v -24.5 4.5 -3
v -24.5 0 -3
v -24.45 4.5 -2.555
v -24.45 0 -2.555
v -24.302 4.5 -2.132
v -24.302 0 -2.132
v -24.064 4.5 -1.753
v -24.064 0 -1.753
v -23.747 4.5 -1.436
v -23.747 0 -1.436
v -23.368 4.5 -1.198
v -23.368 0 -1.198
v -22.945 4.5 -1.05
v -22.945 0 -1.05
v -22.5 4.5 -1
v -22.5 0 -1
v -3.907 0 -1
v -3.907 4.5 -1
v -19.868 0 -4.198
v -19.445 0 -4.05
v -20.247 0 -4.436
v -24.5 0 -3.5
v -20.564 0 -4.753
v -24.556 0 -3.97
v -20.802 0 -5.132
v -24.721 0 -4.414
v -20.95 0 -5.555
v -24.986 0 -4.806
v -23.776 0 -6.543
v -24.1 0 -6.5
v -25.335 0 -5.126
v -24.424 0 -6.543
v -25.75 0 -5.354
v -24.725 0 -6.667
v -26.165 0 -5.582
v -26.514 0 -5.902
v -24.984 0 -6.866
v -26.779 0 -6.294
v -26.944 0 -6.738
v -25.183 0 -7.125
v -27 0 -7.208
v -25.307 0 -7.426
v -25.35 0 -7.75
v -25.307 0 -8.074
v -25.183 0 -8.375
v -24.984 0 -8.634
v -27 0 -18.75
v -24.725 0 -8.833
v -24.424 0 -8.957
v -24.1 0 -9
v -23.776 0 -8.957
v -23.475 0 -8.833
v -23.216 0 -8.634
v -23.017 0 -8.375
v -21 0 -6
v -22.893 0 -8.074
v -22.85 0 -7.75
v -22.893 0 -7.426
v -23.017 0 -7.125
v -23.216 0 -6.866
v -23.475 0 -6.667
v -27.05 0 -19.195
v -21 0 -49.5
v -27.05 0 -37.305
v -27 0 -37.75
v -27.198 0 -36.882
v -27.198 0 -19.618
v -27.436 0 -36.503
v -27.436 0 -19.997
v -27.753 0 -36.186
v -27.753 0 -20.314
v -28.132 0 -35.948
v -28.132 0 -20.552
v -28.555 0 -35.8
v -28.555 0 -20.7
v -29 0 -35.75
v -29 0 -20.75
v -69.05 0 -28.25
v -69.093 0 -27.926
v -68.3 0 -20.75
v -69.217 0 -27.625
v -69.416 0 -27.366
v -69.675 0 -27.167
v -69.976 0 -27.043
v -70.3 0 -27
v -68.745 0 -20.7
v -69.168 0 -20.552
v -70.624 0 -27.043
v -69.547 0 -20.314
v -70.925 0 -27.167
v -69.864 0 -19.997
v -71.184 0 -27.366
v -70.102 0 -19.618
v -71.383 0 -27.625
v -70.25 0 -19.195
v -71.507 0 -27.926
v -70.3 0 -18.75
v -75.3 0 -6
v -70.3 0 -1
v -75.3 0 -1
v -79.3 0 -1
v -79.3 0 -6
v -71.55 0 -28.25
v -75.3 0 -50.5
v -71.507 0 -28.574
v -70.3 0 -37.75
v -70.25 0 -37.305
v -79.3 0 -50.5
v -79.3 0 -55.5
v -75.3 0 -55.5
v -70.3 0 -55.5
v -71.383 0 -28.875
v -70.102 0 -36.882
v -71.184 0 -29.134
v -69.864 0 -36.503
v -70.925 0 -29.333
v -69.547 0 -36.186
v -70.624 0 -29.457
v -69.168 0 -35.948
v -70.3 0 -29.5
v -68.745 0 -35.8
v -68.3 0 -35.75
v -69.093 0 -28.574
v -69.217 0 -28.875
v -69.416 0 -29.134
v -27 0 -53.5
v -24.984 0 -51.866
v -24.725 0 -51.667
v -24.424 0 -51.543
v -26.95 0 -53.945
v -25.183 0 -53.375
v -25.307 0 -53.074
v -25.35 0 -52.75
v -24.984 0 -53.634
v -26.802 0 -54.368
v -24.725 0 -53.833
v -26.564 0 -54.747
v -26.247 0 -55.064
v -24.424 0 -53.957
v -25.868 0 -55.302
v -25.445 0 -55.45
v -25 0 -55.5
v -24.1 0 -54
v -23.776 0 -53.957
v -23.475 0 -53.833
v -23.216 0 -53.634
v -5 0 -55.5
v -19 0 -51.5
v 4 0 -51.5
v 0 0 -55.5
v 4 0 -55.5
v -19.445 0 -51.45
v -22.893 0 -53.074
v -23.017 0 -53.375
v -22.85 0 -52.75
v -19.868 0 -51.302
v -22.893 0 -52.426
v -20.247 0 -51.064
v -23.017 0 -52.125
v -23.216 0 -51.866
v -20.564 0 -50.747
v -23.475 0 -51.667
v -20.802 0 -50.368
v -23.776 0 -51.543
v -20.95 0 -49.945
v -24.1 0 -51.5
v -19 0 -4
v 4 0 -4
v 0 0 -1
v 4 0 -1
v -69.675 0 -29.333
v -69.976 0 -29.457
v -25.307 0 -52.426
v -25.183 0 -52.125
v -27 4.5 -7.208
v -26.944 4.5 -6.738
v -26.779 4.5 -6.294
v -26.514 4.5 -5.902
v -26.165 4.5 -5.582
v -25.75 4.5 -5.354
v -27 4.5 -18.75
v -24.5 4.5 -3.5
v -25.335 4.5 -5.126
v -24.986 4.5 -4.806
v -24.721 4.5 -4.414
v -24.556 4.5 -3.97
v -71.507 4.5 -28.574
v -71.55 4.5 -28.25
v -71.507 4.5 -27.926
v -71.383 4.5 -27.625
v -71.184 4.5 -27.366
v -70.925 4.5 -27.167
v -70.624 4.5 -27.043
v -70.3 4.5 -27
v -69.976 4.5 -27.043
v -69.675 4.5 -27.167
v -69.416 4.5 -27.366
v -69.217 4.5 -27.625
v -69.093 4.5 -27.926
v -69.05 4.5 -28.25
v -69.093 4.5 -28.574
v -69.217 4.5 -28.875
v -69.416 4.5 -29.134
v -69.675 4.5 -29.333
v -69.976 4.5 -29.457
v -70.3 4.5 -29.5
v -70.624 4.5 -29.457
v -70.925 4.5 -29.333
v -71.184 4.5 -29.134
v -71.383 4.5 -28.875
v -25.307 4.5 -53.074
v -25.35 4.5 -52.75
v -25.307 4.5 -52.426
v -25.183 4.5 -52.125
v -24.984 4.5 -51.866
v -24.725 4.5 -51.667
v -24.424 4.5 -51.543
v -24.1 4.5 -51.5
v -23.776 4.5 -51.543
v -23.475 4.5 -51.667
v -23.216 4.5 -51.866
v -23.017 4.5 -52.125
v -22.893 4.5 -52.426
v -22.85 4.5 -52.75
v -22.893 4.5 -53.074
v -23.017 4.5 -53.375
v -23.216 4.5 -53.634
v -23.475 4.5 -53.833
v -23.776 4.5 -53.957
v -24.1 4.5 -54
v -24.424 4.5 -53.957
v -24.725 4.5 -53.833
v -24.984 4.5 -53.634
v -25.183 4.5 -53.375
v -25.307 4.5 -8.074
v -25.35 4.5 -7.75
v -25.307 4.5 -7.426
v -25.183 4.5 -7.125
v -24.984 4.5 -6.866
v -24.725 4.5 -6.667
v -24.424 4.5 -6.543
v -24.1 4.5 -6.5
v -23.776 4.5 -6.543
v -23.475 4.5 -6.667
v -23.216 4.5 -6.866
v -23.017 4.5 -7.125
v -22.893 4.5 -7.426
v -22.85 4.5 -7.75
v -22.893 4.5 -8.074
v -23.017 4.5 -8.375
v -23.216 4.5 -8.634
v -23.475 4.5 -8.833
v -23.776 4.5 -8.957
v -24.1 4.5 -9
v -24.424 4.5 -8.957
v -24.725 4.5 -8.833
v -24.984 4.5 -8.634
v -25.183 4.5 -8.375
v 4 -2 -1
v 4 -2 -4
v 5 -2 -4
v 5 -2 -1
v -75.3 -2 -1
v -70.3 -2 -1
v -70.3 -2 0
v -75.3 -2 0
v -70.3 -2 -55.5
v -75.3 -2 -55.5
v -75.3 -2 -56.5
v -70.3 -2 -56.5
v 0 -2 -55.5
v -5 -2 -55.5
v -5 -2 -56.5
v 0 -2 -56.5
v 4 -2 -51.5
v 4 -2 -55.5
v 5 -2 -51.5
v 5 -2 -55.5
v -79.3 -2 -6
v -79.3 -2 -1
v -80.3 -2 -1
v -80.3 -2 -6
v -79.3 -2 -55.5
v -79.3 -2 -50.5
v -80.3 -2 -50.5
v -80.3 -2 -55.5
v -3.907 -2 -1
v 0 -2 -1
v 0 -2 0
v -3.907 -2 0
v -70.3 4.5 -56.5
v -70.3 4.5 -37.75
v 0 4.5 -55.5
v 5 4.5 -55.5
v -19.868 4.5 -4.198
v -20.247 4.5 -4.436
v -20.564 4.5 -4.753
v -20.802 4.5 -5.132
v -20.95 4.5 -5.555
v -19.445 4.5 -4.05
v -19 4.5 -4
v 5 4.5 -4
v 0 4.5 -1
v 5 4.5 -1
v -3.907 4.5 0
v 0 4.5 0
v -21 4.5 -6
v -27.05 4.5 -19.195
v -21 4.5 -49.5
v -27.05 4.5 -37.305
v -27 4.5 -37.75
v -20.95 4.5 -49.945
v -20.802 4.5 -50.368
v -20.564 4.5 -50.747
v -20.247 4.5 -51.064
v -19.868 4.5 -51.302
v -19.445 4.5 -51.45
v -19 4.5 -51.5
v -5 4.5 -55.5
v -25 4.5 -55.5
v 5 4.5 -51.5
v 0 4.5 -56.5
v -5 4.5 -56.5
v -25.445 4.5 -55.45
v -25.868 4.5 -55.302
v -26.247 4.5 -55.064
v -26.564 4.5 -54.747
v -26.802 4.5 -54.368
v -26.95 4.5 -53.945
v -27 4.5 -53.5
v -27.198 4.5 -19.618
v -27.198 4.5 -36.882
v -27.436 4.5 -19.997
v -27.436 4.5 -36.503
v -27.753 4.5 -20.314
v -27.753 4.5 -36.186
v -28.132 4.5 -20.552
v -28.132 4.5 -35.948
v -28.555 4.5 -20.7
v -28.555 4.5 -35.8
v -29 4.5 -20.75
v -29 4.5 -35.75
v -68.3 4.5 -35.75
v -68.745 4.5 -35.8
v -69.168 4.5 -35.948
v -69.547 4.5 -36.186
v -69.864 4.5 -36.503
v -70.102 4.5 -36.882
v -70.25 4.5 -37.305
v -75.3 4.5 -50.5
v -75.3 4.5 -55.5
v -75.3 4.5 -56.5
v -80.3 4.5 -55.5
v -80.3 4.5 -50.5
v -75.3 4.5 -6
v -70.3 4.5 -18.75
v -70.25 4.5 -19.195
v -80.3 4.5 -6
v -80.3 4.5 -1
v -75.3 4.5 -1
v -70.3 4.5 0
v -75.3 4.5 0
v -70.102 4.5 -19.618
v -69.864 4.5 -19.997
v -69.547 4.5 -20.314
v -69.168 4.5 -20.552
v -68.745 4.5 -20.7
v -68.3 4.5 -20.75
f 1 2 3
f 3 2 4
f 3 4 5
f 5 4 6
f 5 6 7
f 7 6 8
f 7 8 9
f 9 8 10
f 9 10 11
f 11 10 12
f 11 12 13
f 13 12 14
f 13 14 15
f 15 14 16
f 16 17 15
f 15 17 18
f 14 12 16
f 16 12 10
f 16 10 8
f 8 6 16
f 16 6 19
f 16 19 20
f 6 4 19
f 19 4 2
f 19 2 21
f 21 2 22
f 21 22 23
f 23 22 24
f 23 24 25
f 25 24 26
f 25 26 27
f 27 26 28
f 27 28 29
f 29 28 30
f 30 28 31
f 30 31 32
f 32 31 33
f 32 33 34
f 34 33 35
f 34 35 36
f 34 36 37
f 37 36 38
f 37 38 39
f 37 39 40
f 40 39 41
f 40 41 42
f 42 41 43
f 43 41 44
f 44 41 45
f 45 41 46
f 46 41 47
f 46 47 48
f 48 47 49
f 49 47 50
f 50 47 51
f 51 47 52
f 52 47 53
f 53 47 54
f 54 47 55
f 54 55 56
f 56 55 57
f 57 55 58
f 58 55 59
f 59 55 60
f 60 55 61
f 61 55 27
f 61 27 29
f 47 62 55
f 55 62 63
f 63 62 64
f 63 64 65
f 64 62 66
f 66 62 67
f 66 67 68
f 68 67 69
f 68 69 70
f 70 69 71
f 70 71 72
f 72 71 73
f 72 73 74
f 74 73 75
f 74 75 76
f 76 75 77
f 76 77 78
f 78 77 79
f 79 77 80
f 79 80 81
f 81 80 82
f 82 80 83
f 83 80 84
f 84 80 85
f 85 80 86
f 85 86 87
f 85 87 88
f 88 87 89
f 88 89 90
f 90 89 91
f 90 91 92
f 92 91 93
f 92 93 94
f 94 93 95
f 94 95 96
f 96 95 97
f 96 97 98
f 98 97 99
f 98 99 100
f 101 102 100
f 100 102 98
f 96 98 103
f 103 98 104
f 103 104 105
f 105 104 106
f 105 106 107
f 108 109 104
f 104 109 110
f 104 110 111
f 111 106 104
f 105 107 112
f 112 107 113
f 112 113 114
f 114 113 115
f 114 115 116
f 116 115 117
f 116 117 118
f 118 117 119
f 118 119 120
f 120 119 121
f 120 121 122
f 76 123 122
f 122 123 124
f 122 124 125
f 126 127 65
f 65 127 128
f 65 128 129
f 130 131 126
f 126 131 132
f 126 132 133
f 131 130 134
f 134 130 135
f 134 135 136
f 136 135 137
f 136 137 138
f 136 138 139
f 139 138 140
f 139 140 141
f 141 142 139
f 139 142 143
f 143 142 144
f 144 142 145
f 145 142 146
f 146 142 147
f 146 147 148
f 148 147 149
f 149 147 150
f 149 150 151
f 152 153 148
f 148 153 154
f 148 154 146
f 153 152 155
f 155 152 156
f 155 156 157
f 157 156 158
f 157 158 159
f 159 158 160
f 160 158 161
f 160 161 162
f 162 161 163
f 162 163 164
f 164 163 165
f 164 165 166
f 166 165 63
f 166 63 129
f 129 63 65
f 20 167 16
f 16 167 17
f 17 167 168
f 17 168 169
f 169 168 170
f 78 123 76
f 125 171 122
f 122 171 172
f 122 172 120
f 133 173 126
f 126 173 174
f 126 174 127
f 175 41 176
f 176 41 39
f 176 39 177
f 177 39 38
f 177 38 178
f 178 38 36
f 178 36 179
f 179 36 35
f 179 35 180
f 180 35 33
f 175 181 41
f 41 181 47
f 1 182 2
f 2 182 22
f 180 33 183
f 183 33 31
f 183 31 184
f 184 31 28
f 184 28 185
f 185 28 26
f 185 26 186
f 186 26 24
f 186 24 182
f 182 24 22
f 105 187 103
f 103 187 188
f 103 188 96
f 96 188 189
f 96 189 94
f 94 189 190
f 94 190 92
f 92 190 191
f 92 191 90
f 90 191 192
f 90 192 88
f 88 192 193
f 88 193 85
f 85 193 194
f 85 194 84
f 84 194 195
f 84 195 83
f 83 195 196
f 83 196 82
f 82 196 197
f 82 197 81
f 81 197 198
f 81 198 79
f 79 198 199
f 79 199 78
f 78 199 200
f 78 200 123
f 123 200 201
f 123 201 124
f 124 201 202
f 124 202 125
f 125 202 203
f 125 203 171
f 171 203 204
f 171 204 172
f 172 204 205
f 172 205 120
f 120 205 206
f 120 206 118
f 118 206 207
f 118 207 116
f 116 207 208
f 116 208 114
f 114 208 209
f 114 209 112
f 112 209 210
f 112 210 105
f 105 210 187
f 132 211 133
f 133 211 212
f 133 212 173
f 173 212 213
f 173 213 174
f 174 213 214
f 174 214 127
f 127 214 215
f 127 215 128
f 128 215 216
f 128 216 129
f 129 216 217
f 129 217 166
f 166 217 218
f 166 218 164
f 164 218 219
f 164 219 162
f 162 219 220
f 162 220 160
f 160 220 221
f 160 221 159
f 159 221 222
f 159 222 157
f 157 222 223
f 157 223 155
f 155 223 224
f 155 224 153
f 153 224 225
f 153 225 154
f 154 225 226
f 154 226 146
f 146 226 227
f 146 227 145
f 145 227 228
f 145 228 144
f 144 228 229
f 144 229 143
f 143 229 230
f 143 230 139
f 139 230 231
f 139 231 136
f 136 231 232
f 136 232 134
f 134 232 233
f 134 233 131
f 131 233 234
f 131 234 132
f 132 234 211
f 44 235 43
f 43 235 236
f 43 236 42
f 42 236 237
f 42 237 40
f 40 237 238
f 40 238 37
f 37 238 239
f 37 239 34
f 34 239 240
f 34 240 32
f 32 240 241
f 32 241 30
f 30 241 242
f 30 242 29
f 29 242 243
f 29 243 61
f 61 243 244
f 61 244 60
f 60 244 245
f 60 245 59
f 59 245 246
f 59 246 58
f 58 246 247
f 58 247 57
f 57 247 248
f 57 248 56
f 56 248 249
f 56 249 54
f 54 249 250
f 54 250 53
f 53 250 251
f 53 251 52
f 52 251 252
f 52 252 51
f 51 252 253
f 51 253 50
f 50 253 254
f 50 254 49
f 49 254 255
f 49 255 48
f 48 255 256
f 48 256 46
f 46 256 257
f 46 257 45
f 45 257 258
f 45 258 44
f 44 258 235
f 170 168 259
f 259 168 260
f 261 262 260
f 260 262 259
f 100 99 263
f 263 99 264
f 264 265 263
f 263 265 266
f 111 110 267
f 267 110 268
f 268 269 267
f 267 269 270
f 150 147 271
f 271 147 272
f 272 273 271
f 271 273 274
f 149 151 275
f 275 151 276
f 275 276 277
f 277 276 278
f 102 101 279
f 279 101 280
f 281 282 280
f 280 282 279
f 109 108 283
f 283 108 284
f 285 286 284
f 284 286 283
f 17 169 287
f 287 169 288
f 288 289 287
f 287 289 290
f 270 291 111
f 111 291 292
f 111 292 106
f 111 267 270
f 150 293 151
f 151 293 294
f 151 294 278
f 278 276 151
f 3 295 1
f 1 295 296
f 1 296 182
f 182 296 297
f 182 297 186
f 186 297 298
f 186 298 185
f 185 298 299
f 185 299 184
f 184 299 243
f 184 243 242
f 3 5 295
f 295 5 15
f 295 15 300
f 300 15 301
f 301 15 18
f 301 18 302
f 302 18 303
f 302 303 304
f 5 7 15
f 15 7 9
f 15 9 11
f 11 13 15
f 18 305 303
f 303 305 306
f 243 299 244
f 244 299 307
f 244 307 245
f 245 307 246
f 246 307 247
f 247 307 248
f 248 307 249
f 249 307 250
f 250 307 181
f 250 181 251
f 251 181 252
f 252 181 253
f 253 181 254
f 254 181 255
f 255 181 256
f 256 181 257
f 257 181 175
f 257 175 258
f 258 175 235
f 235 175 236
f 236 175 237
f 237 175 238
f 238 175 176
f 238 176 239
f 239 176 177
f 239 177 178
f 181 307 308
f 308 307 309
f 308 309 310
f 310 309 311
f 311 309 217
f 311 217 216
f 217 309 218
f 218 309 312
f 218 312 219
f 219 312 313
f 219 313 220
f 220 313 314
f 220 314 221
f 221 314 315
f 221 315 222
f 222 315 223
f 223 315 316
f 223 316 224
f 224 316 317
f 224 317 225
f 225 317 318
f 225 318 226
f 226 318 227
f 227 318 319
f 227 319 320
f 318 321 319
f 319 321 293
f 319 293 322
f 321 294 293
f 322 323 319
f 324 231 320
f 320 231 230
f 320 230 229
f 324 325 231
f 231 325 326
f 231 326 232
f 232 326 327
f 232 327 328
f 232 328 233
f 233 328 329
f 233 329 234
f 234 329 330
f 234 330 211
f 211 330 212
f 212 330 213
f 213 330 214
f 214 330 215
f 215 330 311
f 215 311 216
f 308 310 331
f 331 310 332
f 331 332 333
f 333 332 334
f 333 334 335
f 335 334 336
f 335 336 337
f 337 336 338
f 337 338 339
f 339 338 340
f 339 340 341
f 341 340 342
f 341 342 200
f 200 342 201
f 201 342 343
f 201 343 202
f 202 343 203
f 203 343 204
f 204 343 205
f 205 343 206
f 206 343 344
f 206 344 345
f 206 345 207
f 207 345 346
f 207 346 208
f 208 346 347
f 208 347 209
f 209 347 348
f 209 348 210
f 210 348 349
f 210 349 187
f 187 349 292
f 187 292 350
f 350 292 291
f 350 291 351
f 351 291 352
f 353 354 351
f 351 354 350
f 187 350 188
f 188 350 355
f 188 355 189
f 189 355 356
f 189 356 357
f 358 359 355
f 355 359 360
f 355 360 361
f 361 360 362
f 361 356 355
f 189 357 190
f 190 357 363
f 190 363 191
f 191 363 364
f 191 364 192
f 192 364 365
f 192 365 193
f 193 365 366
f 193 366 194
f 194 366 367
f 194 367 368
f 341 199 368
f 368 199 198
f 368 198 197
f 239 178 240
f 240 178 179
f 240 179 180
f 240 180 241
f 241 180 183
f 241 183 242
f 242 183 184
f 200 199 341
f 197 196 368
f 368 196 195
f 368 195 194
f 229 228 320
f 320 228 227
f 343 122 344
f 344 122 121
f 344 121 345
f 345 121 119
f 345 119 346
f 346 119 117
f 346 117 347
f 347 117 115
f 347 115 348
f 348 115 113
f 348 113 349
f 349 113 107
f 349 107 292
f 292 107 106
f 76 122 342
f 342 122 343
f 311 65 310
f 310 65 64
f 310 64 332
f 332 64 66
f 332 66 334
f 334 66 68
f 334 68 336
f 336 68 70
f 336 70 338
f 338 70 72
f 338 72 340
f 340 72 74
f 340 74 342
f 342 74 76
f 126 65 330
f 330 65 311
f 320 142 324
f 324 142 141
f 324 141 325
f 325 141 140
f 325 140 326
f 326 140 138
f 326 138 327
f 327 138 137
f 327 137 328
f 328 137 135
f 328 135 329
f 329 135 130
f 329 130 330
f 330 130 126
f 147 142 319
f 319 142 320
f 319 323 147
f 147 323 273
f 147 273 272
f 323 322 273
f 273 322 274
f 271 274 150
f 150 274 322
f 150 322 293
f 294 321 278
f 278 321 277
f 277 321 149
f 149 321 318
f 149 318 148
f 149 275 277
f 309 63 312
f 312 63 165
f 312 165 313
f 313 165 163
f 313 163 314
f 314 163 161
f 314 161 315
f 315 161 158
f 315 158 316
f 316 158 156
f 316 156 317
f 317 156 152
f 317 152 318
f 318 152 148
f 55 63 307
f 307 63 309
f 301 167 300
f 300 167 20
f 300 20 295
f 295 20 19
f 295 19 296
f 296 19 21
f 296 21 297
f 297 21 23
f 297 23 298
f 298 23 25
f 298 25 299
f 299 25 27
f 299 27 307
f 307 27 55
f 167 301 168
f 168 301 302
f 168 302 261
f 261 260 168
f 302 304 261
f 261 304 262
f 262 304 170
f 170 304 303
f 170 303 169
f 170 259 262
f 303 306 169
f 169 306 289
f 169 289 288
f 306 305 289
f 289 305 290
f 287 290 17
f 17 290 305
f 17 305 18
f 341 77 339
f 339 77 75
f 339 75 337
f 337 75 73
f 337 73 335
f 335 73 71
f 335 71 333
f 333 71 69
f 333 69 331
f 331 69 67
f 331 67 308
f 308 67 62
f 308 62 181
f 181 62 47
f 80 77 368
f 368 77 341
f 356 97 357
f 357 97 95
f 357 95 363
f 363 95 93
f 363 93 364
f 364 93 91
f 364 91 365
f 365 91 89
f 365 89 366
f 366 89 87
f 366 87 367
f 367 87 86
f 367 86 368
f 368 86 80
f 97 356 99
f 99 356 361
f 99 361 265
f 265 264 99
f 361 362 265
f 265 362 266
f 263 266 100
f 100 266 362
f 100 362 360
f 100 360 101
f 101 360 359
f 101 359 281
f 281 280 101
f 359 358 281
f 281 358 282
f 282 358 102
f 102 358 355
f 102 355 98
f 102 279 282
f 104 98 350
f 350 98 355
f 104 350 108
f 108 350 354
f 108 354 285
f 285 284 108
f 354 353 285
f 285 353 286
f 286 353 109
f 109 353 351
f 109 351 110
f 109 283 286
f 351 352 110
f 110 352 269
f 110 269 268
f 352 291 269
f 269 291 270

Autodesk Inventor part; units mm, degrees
ref_plane "YZ Plane" through (0, 0, 0) normal (1, 0, 0) x (0, 1, 0)
ref_plane "XZ Plane" through (0, 0, 0) normal (0, 1, 0) x (-1, 0, 0)
ref_plane "XY Plane" through (0, 0, 0) normal (0, 0, 1) x (1, 0, 0)
sketch "Sketch9" plane through (0, 0, 0) normal (0, 1, 0) x (-1, 0, 0)
  line L0 (80.3, -1) -> (75.3, -1)
  line L1 (75.3, -1) -> (75.3, 0)
  line L2 (75.3, 0) -> (70.3, 0)
  line L3 (70.3, 0) -> (70.3, -18.75)
  line L4 (68.3, -20.75) -> (29, -20.75)
  line L5 (0, 0) -> (0, -1)
  line L6 (0, -1) -> (-5, -1)
  line L7 (-5, -1) -> (-5, -4)
  line L8 (-5, -4) -> (19, -4)
  line L9 (21, -6) -> (21, -49.5)
  line L10 (19, -51.5) -> (-5, -51.5)
  line L11 (-5, -51.5) -> (-5, -55.5)
  line L12 (-5, -55.5) -> (0, -55.5)
  line L13 (29, -35.75) -> (68.3, -35.75)
  line L14 (70.3, -37.75) -> (70.3, -56.5)
  line L15 (70.3, -56.5) -> (75.3, -56.5)
  line L16 (75.3, -56.5) -> (75.3, -55.5)
  line L17 (75.3, -55.5) -> (80.3, -55.5)
  line L18 (80.3, -55.5) -> (80.3, -50.5)
  line L19 (80.3, -50.5) -> (75.3, -50.5)
  line L20 (75.3, -50.5) -> (75.3, -6)
  line L21 (75.3, -6) -> (80.3, -6)
  line L22 (80.3, -6) -> (80.3, -1)
  line L23 (27, -37.75) -> (27, -53.5)
  line L24 (25, -55.5) -> (5, -55.5)
  line L25 (0, -55.5) -> (0, -56.5)
  line L26 (0, -56.5) -> (5, -56.5)
  line L27 (5, -56.5) -> (5, -55.5)
  line L28 (3.9072, 0) -> (3.9072, -1)
  line L29 (3.9072, -1) -> (25, -1)
  line L30 (27, -3) -> (27, -18.75)
  line L31 (3.9072, 0) -> (0, 0)
  arc A0 (19, -51.5) -> (21, -49.5) centre (19, -49.5) ccw
  arc A1 (21, -6) -> (19, -4) centre (19, -6) ccw
  arc A2 (27, -3) -> (25, -1) centre (25, -3) ccw
  arc A3 (25, -55.5) -> (27, -53.5) centre (25, -53.5) ccw
  arc A4 (70.3, -37.75) -> (68.3, -35.75) centre (68.3, -37.75) ccw
  arc A5 (68.3, -20.75) -> (70.3, -18.75) centre (68.3, -18.75) ccw
  arc A6 (29, -35.75) -> (27, -37.75) centre (29, -37.75) ccw
  arc A7 (27, -18.75) -> (29, -20.75) centre (29, -18.75) ccw
  point P0 (70.3, -20.75)
  point P1 (27, -20.75)
  point P2 (21, -4)
  point P3 (21, -51.5)
  point P4 (27, -35.75)
  point P5 (70.3, -35.75)
  point P6 (27, -55.5)
  point P7 (27, -1)
  dimension "d42" = 85.3
  dimension "d45" = 15
  dimension "d46" = 5
  dimension "d47" = 5
  dimension "d48" = 5
  dimension "d50" = 1
  dimension "d60" = 4
  dimension "d62" = 26
  dimension "d64" = 1
  dimension "d65" = 5
  dimension "d66" = 5
  dimension "d67" = 6
  dimension "d68" = 3
  dimension "d69" = 56.5
  dimension "d70" = 5
  dimension "d90" = 2
  dimension "d91" = 2
  dimension "d92" = 2
extrude "Extrusion9" add sketch "Sketch9" along normal blind 4.5
sketch "Sketch10" plane through (0, 4.5, 0) normal (0, 1, 0) x (1, 0, 0)
  line L0 (-19, 51.5) -> (5, 51.5) projected
  line L1 (0, 0) -> (0, 1) projected
  line L2 (0, 55.5) -> (0, 56.5) projected
  line L3 (5, 55.5) -> (0, 55.5) projected
  line L4 (5, 51.5) -> (5, 55.5) projected
  line L5 (-70.3, 37.75) -> (-70.3, 56.5) projected
  line L6 (-70.3, 56.5) -> (-75.3, 56.5) projected
  line L7 (-75.3, 56.5) -> (-75.3, 55.5) projected
  line L8 (-75.3, 55.5) -> (-80.3, 55.5) projected
  line L9 (-80.3, 55.5) -> (-80.3, 50.5) projected
  line L10 (-80.3, 50.5) -> (-75.3, 50.5) projected
  line L11 (-75.3, 50.5) -> (-75.3, 6) projected
  line L12 (-75.3, 6) -> (-80.3, 6) projected
  line L13 (-80.3, 6) -> (-80.3, 1) projected
  line L14 (-80.3, 1) -> (-75.3, 1) projected
  line L15 (-75.3, 1) -> (-75.3, 0) projected
  line L16 (-75.3, 0) -> (-70.3, 0) projected
  line L17 (-70.3, 0) -> (-70.3, 18.75) projected
  line L18 (-68.3, 20.75) -> (-29, 20.75) projected
  line L19 (-27, 18.75) -> (-27, 3) projected
  line L20 (-25, 1) -> (-3.9072, 1) projected
  line L21 (-3.9072, 1) -> (-3.9072, 0) projected
  line L22 (-3.9072, 0) -> (0, 0) projected
  line L23 (0, 0) -> (0, 1) projected
  line L24 (0, 1) -> (5, 1) projected
  line L25 (5, 1) -> (5, 4) projected
  line L26 (5, 4) -> (-19, 4) projected
  line L27 (-21, 6) -> (-21, 49.5) projected
  line L28 (-19, 51.5) -> (5, 51.5) projected
  line L29 (5, 51.5) -> (5, 55.5) projected
  line L30 (5, 55.5) -> (0, 55.5) projected
  line L31 (0, 55.5) -> (0, 56.5) projected
  line L32 (0, 56.5) -> (-5, 56.5) projected
  line L33 (-5, 56.5) -> (-5, 55.5) projected
  line L34 (-5, 55.5) -> (-25, 55.5) projected
  line L35 (-27, 53.5) -> (-27, 37.75) projected
  line L36 (-29, 35.75) -> (-68.3, 35.75) projected
  line L37 (-27, 1) -> (-3.9072, 1) projected
  line L38 (0, 1) -> (-3.9072, 1)
  line L39 (0, 1) -> (5, 1) projected
  line L40 (4, 1) -> (4, 4)
  line L41 (5, 4) -> (-21, 4) projected
  line L42 (4, 51.5) -> (4, 55.5)
  line L43 (-5, 55.5) -> (-27, 55.5) projected
  line L44 (0, 55.5) -> (-5, 55.5)
  line L45 (-75.3, 55.5) -> (-80.3, 55.5) projected
  line L46 (-75.3, 55.5) -> (-70.3, 55.5)
  line L47 (-80.3, 1) -> (-75.3, 1) projected
  line L48 (-79.3, 1) -> (-79.3, 6)
  line L49 (-75.3, 1) -> (-70.3, 1)
  line L50 (-70.3, 0) -> (-70.3, 20.75) projected
  line L51 (-80.3, 50.5) -> (-75.3, 50.5) projected
  line L52 (-79.3, 50.5) -> (-79.3, 55.5)
  arc A0 (-68.3, 20.75) -> (-70.3, 18.75) centre (-68.3, 18.75) ccw projected
  arc A1 (-27, 18.75) -> (-29, 20.75) centre (-29, 18.75) ccw projected
  arc A2 (-27, 3) -> (-25, 1) centre (-25, 3) ccw projected
  arc A3 (-21, 6) -> (-19, 4) centre (-19, 6) ccw projected
  arc A4 (-19, 51.5) -> (-21, 49.5) centre (-19, 49.5) ccw projected
  arc A5 (-25, 55.5) -> (-27, 53.5) centre (-25, 53.5) ccw projected
  arc A6 (-29, 35.75) -> (-27, 37.75) centre (-29, 37.75) ccw projected
  arc A7 (-70.3, 37.75) -> (-68.3, 35.75) centre (-68.3, 37.75) ccw projected
  point P0 (-75.3, 1)
  dimension "d71" = 1
  dimension "d72" = 1
  dimension "d73" = 1
  dimension "d74" = 1
extrude "Extrusion10" add sketch "Sketch10" against normal blind 6.5 contours L42 L3 L4 L0 | L44 L33 L32 L2 | L26 L25 L24 L40 | L1 L22 L21 L38 | L46 L7 L6 L5 | L52 L10 L9 L8 | L17 L16 L15 L49 | L14 L13 L12 L48
sketch "Sketch11" plane through (0, 4.5, 0) normal (0, 1, 0) x (1, 0, 0)
  line L0 (5, 4) -> (-19, 4) projected
  line L1 (-21, 6) -> (-21, 49.5) projected
  line L2 (-19, 51.5) -> (5, 51.5) projected
  line L3 (5, 51.5) -> (5, 55.5) projected
  line L4 (5, 55.5) -> (0, 55.5) projected
  line L5 (0, 55.5) -> (0, 56.5) projected
  line L6 (0, 56.5) -> (-5, 56.5) projected
  line L7 (-5, 56.5) -> (-5, 55.5) projected
  line L8 (-5, 55.5) -> (-25, 55.5) projected
  line L9 (-27, 53.5) -> (-27, 37.75) projected
  line L10 (-29, 35.75) -> (-68.3, 35.75) projected
  line L11 (-70.3, 37.75) -> (-70.3, 56.5) projected
  line L12 (-70.3, 56.5) -> (-75.3, 56.5) projected
  line L13 (-75.3, 56.5) -> (-75.3, 55.5) projected
  line L14 (-75.3, 55.5) -> (-80.3, 55.5) projected
  line L15 (-80.3, 55.5) -> (-80.3, 50.5) projected
  line L16 (-80.3, 50.5) -> (-75.3, 50.5) projected
  line L17 (-75.3, 50.5) -> (-75.3, 6) projected
  line L18 (-75.3, 6) -> (-80.3, 6) projected
  line L19 (-80.3, 6) -> (-80.3, 1) projected
  line L20 (-80.3, 1) -> (-75.3, 1) projected
  line L21 (-75.3, 1) -> (-75.3, 0) projected
  line L22 (-75.3, 0) -> (-70.3, 0) projected
  line L23 (-70.3, 0) -> (-70.3, 18.75) projected
  line L24 (-68.3, 20.75) -> (-29, 20.75) projected
  line L25 (-27, 18.75) -> (-27, 3) projected
  line L26 (-25, 1) -> (-3.9072, 1) projected
  line L27 (-3.9072, 1) -> (-3.9072, 0) projected
  line L28 (-3.9072, 0) -> (0, 0) projected
  line L29 (0, 0) -> (0, 1) projected
  line L30 (0, 1) -> (5, 1) projected
  line L31 (5, 1) -> (5, 4) projected
  circle A0 centre (-70.3, 28.25) radius 1.25
  line L32 (-21, 4) -> (-21, 49.5) projected
  line L33 (-75.3, 50.5) -> (-75.3, 6) projected
  arc A1 (-21, 6) -> (-19, 4) centre (-19, 6) ccw projected
  arc A2 (-19, 51.5) -> (-21, 49.5) centre (-19, 49.5) ccw projected
  arc A3 (-25, 55.5) -> (-27, 53.5) centre (-25, 53.5) ccw projected
  arc A4 (-29, 35.75) -> (-27, 37.75) centre (-29, 37.75) ccw projected
  arc A5 (-70.3, 37.75) -> (-68.3, 35.75) centre (-68.3, 37.75) ccw projected
  arc A6 (-68.3, 20.75) -> (-70.3, 18.75) centre (-68.3, 18.75) ccw projected
  arc A7 (-27, 18.75) -> (-29, 20.75) centre (-29, 18.75) ccw projected
  arc A8 (-27, 3) -> (-25, 1) centre (-25, 3) ccw projected
  circle A9 centre (-24.1, 7.75) radius 1.25
  circle A10 centre (-24.1, 52.75) radius 1.25
  line L34 (4, 4) -> (4, 1) projected
  line L35 (0, 1) -> (4, 1) projected
  line L36 (0, 1) -> (-3.9072, 1) projected
  line L37 (-25, 1) -> (-3.9072, 1) projected
  arc A11 (-27, 3) -> (-25, 1) centre (-25, 3) ccw projected
  line L38 (-27, 18.75) -> (-27, 3) projected
  arc A12 (-27, 18.75) -> (-29, 20.75) centre (-29, 18.75) ccw projected
  line L39 (-68.3, 20.75) -> (-29, 20.75) projected
  arc A13 (-68.3, 20.75) -> (-70.3, 18.75) centre (-68.3, 18.75) ccw projected
  line L40 (-70.3, 1) -> (-70.3, 18.75) projected
  line L41 (-70.3, 1) -> (-75.3, 1) projected
  line L42 (-79.3, 1) -> (-75.3, 1) projected
  line L43 (-79.3, 1) -> (-79.3, 6) projected
  line L44 (-75.3, 6) -> (-79.3, 6) projected
  line L45 (-75.3, 50.5) -> (-75.3, 6) projected
  line L46 (-79.3, 50.5) -> (-75.3, 50.5) projected
  line L47 (-79.3, 50.5) -> (-79.3, 55.5) projected
  line L48 (-75.3, 55.5) -> (-79.3, 55.5) projected
  line L49 (-75.3, 55.5) -> (-70.3, 55.5) projected
  line L50 (-70.3, 37.75) -> (-70.3, 55.5) projected
  arc A14 (-70.3, 37.75) -> (-68.3, 35.75) centre (-68.3, 37.75) ccw projected
  line L51 (-29, 35.75) -> (-68.3, 35.75) projected
  arc A15 (-29, 35.75) -> (-27, 37.75) centre (-29, 37.75) ccw projected
  line L52 (-27, 53.5) -> (-27, 37.75) projected
  arc A16 (-25, 55.5) -> (-27, 53.5) centre (-25, 53.5) ccw projected
  line L53 (-5, 55.5) -> (-25, 55.5) projected
  line L54 (-5, 55.5) -> (0, 55.5) projected
  line L55 (4, 55.5) -> (0, 55.5) projected
  line L56 (4, 55.5) -> (4, 51.5) projected
  line L57 (-19, 51.5) -> (4, 51.5) projected
  arc A17 (-19, 51.5) -> (-21, 49.5) centre (-19, 49.5) ccw projected
  line L58 (-21, 6) -> (-21, 49.5) projected
  arc A18 (-21, 6) -> (-19, 4) centre (-19, 6) ccw projected
  line L59 (4, 4) -> (-19, 4) projected
  dimension "d76" = 2.5
  dimension "d93" = 2.5
  dimension "d94" = 2.5
  dimension "d96" = 56.2
  dimension "d97" = 56.2
  dimension "d100" = 7.5
  dimension "d101" = 17
  dimension "d102" = 13
extrude "Extrusion11" cut sketch "Sketch11" against normal through all contours A0 | A9 | A10
sketch "Sketch14" plane through (0, 0, 0) normal (0, -1, 0) x (1, 0, 0)
  circle A0 centre (-70.3, -28.25) radius 1.25 projected
  circle A1 centre (-24.1, -52.75) radius 1.25 projected
  circle A2 centre (-24.1, -7.75) radius 1.25 projected
  line L0 (4, -4) -> (4, -1) projected
  line L1 (0, -1) -> (4, -1) projected
  line L2 (0, -1) -> (-3.9072, -1) projected
  line L3 (-25, -1) -> (-3.9072, -1) projected
  arc A3 (-25, -1) -> (-27, -3) centre (-25, -3) ccw projected
  line L4 (-27, -18.75) -> (-27, -3) projected
  arc A4 (-29, -20.75) -> (-27, -18.75) centre (-29, -18.75) ccw projected
  line L5 (-68.3, -20.75) -> (-29, -20.75) projected
  arc A5 (-70.3, -18.75) -> (-68.3, -20.75) centre (-68.3, -18.75) ccw projected
  line L6 (-70.3, -1) -> (-70.3, -18.75) projected
  line L7 (-70.3, -1) -> (-75.3, -1) projected
  line L8 (-79.3, -1) -> (-75.3, -1) projected
  line L9 (-79.3, -1) -> (-79.3, -6) projected
  line L10 (-75.3, -6) -> (-79.3, -6) projected
  line L11 (-75.3, -50.5) -> (-75.3, -6) projected
  line L12 (-79.3, -50.5) -> (-75.3, -50.5) projected
  line L13 (-79.3, -50.5) -> (-79.3, -55.5) projected
  line L14 (-75.3, -55.5) -> (-79.3, -55.5) projected
  line L15 (-75.3, -55.5) -> (-70.3, -55.5) projected
  line L16 (-70.3, -37.75) -> (-70.3, -55.5) projected
  arc A6 (-68.3, -35.75) -> (-70.3, -37.75) centre (-68.3, -37.75) ccw projected
  line L17 (-29, -35.75) -> (-68.3, -35.75) projected
  arc A7 (-27, -37.75) -> (-29, -35.75) centre (-29, -37.75) ccw projected
  line L18 (-27, -53.5) -> (-27, -37.75) projected
  arc A8 (-27, -53.5) -> (-25, -55.5) centre (-25, -53.5) ccw projected
  line L19 (-5, -55.5) -> (-25, -55.5) projected
  line L20 (-5, -55.5) -> (0, -55.5) projected
  line L21 (4, -55.5) -> (0, -55.5) projected
  line L22 (4, -55.5) -> (4, -51.5) projected
  line L23 (-19, -51.5) -> (4, -51.5) projected
  arc A9 (-21, -49.5) -> (-19, -51.5) centre (-19, -49.5) ccw projected
  line L24 (-21, -6) -> (-21, -49.5) projected
  arc A10 (-19, -4) -> (-21, -6) centre (-19, -6) ccw projected
  line L25 (4, -4) -> (-19, -4) projected
  line L26 (-27, -18.75) -> (-27, -3) projected
  line L27 (-25, -1) -> (-3.9072, -1) projected
  line L28 (-27, -5.5) -> (-26.5, -5.5)
  line L29 (-24.5, -3.5) -> (-24.5, -1)
  line L30 (-24.5, -1) -> (-27, -1)
  line L31 (-27, -1) -> (-27, -5.5)
  arc A11 (-26.5, -5.5) -> (-24.5, -3.5) centre (-26.5, -3.5) ccw
  point P0 (0, 0)
  dimension "d103" = 2
  dimension "d104" = 4.5
  dimension "d105" = 2.5
extrude "Extrusion14" cut sketch "Sketch14" against normal through all contours L29 A11 L28 L4 A3 L3
fillet "Fillet1" radius 2 2 edges at (-27, 2.25, -5.5) (-24.5, 2.25, -1)
properties part number "display_holder_3DPrint"
